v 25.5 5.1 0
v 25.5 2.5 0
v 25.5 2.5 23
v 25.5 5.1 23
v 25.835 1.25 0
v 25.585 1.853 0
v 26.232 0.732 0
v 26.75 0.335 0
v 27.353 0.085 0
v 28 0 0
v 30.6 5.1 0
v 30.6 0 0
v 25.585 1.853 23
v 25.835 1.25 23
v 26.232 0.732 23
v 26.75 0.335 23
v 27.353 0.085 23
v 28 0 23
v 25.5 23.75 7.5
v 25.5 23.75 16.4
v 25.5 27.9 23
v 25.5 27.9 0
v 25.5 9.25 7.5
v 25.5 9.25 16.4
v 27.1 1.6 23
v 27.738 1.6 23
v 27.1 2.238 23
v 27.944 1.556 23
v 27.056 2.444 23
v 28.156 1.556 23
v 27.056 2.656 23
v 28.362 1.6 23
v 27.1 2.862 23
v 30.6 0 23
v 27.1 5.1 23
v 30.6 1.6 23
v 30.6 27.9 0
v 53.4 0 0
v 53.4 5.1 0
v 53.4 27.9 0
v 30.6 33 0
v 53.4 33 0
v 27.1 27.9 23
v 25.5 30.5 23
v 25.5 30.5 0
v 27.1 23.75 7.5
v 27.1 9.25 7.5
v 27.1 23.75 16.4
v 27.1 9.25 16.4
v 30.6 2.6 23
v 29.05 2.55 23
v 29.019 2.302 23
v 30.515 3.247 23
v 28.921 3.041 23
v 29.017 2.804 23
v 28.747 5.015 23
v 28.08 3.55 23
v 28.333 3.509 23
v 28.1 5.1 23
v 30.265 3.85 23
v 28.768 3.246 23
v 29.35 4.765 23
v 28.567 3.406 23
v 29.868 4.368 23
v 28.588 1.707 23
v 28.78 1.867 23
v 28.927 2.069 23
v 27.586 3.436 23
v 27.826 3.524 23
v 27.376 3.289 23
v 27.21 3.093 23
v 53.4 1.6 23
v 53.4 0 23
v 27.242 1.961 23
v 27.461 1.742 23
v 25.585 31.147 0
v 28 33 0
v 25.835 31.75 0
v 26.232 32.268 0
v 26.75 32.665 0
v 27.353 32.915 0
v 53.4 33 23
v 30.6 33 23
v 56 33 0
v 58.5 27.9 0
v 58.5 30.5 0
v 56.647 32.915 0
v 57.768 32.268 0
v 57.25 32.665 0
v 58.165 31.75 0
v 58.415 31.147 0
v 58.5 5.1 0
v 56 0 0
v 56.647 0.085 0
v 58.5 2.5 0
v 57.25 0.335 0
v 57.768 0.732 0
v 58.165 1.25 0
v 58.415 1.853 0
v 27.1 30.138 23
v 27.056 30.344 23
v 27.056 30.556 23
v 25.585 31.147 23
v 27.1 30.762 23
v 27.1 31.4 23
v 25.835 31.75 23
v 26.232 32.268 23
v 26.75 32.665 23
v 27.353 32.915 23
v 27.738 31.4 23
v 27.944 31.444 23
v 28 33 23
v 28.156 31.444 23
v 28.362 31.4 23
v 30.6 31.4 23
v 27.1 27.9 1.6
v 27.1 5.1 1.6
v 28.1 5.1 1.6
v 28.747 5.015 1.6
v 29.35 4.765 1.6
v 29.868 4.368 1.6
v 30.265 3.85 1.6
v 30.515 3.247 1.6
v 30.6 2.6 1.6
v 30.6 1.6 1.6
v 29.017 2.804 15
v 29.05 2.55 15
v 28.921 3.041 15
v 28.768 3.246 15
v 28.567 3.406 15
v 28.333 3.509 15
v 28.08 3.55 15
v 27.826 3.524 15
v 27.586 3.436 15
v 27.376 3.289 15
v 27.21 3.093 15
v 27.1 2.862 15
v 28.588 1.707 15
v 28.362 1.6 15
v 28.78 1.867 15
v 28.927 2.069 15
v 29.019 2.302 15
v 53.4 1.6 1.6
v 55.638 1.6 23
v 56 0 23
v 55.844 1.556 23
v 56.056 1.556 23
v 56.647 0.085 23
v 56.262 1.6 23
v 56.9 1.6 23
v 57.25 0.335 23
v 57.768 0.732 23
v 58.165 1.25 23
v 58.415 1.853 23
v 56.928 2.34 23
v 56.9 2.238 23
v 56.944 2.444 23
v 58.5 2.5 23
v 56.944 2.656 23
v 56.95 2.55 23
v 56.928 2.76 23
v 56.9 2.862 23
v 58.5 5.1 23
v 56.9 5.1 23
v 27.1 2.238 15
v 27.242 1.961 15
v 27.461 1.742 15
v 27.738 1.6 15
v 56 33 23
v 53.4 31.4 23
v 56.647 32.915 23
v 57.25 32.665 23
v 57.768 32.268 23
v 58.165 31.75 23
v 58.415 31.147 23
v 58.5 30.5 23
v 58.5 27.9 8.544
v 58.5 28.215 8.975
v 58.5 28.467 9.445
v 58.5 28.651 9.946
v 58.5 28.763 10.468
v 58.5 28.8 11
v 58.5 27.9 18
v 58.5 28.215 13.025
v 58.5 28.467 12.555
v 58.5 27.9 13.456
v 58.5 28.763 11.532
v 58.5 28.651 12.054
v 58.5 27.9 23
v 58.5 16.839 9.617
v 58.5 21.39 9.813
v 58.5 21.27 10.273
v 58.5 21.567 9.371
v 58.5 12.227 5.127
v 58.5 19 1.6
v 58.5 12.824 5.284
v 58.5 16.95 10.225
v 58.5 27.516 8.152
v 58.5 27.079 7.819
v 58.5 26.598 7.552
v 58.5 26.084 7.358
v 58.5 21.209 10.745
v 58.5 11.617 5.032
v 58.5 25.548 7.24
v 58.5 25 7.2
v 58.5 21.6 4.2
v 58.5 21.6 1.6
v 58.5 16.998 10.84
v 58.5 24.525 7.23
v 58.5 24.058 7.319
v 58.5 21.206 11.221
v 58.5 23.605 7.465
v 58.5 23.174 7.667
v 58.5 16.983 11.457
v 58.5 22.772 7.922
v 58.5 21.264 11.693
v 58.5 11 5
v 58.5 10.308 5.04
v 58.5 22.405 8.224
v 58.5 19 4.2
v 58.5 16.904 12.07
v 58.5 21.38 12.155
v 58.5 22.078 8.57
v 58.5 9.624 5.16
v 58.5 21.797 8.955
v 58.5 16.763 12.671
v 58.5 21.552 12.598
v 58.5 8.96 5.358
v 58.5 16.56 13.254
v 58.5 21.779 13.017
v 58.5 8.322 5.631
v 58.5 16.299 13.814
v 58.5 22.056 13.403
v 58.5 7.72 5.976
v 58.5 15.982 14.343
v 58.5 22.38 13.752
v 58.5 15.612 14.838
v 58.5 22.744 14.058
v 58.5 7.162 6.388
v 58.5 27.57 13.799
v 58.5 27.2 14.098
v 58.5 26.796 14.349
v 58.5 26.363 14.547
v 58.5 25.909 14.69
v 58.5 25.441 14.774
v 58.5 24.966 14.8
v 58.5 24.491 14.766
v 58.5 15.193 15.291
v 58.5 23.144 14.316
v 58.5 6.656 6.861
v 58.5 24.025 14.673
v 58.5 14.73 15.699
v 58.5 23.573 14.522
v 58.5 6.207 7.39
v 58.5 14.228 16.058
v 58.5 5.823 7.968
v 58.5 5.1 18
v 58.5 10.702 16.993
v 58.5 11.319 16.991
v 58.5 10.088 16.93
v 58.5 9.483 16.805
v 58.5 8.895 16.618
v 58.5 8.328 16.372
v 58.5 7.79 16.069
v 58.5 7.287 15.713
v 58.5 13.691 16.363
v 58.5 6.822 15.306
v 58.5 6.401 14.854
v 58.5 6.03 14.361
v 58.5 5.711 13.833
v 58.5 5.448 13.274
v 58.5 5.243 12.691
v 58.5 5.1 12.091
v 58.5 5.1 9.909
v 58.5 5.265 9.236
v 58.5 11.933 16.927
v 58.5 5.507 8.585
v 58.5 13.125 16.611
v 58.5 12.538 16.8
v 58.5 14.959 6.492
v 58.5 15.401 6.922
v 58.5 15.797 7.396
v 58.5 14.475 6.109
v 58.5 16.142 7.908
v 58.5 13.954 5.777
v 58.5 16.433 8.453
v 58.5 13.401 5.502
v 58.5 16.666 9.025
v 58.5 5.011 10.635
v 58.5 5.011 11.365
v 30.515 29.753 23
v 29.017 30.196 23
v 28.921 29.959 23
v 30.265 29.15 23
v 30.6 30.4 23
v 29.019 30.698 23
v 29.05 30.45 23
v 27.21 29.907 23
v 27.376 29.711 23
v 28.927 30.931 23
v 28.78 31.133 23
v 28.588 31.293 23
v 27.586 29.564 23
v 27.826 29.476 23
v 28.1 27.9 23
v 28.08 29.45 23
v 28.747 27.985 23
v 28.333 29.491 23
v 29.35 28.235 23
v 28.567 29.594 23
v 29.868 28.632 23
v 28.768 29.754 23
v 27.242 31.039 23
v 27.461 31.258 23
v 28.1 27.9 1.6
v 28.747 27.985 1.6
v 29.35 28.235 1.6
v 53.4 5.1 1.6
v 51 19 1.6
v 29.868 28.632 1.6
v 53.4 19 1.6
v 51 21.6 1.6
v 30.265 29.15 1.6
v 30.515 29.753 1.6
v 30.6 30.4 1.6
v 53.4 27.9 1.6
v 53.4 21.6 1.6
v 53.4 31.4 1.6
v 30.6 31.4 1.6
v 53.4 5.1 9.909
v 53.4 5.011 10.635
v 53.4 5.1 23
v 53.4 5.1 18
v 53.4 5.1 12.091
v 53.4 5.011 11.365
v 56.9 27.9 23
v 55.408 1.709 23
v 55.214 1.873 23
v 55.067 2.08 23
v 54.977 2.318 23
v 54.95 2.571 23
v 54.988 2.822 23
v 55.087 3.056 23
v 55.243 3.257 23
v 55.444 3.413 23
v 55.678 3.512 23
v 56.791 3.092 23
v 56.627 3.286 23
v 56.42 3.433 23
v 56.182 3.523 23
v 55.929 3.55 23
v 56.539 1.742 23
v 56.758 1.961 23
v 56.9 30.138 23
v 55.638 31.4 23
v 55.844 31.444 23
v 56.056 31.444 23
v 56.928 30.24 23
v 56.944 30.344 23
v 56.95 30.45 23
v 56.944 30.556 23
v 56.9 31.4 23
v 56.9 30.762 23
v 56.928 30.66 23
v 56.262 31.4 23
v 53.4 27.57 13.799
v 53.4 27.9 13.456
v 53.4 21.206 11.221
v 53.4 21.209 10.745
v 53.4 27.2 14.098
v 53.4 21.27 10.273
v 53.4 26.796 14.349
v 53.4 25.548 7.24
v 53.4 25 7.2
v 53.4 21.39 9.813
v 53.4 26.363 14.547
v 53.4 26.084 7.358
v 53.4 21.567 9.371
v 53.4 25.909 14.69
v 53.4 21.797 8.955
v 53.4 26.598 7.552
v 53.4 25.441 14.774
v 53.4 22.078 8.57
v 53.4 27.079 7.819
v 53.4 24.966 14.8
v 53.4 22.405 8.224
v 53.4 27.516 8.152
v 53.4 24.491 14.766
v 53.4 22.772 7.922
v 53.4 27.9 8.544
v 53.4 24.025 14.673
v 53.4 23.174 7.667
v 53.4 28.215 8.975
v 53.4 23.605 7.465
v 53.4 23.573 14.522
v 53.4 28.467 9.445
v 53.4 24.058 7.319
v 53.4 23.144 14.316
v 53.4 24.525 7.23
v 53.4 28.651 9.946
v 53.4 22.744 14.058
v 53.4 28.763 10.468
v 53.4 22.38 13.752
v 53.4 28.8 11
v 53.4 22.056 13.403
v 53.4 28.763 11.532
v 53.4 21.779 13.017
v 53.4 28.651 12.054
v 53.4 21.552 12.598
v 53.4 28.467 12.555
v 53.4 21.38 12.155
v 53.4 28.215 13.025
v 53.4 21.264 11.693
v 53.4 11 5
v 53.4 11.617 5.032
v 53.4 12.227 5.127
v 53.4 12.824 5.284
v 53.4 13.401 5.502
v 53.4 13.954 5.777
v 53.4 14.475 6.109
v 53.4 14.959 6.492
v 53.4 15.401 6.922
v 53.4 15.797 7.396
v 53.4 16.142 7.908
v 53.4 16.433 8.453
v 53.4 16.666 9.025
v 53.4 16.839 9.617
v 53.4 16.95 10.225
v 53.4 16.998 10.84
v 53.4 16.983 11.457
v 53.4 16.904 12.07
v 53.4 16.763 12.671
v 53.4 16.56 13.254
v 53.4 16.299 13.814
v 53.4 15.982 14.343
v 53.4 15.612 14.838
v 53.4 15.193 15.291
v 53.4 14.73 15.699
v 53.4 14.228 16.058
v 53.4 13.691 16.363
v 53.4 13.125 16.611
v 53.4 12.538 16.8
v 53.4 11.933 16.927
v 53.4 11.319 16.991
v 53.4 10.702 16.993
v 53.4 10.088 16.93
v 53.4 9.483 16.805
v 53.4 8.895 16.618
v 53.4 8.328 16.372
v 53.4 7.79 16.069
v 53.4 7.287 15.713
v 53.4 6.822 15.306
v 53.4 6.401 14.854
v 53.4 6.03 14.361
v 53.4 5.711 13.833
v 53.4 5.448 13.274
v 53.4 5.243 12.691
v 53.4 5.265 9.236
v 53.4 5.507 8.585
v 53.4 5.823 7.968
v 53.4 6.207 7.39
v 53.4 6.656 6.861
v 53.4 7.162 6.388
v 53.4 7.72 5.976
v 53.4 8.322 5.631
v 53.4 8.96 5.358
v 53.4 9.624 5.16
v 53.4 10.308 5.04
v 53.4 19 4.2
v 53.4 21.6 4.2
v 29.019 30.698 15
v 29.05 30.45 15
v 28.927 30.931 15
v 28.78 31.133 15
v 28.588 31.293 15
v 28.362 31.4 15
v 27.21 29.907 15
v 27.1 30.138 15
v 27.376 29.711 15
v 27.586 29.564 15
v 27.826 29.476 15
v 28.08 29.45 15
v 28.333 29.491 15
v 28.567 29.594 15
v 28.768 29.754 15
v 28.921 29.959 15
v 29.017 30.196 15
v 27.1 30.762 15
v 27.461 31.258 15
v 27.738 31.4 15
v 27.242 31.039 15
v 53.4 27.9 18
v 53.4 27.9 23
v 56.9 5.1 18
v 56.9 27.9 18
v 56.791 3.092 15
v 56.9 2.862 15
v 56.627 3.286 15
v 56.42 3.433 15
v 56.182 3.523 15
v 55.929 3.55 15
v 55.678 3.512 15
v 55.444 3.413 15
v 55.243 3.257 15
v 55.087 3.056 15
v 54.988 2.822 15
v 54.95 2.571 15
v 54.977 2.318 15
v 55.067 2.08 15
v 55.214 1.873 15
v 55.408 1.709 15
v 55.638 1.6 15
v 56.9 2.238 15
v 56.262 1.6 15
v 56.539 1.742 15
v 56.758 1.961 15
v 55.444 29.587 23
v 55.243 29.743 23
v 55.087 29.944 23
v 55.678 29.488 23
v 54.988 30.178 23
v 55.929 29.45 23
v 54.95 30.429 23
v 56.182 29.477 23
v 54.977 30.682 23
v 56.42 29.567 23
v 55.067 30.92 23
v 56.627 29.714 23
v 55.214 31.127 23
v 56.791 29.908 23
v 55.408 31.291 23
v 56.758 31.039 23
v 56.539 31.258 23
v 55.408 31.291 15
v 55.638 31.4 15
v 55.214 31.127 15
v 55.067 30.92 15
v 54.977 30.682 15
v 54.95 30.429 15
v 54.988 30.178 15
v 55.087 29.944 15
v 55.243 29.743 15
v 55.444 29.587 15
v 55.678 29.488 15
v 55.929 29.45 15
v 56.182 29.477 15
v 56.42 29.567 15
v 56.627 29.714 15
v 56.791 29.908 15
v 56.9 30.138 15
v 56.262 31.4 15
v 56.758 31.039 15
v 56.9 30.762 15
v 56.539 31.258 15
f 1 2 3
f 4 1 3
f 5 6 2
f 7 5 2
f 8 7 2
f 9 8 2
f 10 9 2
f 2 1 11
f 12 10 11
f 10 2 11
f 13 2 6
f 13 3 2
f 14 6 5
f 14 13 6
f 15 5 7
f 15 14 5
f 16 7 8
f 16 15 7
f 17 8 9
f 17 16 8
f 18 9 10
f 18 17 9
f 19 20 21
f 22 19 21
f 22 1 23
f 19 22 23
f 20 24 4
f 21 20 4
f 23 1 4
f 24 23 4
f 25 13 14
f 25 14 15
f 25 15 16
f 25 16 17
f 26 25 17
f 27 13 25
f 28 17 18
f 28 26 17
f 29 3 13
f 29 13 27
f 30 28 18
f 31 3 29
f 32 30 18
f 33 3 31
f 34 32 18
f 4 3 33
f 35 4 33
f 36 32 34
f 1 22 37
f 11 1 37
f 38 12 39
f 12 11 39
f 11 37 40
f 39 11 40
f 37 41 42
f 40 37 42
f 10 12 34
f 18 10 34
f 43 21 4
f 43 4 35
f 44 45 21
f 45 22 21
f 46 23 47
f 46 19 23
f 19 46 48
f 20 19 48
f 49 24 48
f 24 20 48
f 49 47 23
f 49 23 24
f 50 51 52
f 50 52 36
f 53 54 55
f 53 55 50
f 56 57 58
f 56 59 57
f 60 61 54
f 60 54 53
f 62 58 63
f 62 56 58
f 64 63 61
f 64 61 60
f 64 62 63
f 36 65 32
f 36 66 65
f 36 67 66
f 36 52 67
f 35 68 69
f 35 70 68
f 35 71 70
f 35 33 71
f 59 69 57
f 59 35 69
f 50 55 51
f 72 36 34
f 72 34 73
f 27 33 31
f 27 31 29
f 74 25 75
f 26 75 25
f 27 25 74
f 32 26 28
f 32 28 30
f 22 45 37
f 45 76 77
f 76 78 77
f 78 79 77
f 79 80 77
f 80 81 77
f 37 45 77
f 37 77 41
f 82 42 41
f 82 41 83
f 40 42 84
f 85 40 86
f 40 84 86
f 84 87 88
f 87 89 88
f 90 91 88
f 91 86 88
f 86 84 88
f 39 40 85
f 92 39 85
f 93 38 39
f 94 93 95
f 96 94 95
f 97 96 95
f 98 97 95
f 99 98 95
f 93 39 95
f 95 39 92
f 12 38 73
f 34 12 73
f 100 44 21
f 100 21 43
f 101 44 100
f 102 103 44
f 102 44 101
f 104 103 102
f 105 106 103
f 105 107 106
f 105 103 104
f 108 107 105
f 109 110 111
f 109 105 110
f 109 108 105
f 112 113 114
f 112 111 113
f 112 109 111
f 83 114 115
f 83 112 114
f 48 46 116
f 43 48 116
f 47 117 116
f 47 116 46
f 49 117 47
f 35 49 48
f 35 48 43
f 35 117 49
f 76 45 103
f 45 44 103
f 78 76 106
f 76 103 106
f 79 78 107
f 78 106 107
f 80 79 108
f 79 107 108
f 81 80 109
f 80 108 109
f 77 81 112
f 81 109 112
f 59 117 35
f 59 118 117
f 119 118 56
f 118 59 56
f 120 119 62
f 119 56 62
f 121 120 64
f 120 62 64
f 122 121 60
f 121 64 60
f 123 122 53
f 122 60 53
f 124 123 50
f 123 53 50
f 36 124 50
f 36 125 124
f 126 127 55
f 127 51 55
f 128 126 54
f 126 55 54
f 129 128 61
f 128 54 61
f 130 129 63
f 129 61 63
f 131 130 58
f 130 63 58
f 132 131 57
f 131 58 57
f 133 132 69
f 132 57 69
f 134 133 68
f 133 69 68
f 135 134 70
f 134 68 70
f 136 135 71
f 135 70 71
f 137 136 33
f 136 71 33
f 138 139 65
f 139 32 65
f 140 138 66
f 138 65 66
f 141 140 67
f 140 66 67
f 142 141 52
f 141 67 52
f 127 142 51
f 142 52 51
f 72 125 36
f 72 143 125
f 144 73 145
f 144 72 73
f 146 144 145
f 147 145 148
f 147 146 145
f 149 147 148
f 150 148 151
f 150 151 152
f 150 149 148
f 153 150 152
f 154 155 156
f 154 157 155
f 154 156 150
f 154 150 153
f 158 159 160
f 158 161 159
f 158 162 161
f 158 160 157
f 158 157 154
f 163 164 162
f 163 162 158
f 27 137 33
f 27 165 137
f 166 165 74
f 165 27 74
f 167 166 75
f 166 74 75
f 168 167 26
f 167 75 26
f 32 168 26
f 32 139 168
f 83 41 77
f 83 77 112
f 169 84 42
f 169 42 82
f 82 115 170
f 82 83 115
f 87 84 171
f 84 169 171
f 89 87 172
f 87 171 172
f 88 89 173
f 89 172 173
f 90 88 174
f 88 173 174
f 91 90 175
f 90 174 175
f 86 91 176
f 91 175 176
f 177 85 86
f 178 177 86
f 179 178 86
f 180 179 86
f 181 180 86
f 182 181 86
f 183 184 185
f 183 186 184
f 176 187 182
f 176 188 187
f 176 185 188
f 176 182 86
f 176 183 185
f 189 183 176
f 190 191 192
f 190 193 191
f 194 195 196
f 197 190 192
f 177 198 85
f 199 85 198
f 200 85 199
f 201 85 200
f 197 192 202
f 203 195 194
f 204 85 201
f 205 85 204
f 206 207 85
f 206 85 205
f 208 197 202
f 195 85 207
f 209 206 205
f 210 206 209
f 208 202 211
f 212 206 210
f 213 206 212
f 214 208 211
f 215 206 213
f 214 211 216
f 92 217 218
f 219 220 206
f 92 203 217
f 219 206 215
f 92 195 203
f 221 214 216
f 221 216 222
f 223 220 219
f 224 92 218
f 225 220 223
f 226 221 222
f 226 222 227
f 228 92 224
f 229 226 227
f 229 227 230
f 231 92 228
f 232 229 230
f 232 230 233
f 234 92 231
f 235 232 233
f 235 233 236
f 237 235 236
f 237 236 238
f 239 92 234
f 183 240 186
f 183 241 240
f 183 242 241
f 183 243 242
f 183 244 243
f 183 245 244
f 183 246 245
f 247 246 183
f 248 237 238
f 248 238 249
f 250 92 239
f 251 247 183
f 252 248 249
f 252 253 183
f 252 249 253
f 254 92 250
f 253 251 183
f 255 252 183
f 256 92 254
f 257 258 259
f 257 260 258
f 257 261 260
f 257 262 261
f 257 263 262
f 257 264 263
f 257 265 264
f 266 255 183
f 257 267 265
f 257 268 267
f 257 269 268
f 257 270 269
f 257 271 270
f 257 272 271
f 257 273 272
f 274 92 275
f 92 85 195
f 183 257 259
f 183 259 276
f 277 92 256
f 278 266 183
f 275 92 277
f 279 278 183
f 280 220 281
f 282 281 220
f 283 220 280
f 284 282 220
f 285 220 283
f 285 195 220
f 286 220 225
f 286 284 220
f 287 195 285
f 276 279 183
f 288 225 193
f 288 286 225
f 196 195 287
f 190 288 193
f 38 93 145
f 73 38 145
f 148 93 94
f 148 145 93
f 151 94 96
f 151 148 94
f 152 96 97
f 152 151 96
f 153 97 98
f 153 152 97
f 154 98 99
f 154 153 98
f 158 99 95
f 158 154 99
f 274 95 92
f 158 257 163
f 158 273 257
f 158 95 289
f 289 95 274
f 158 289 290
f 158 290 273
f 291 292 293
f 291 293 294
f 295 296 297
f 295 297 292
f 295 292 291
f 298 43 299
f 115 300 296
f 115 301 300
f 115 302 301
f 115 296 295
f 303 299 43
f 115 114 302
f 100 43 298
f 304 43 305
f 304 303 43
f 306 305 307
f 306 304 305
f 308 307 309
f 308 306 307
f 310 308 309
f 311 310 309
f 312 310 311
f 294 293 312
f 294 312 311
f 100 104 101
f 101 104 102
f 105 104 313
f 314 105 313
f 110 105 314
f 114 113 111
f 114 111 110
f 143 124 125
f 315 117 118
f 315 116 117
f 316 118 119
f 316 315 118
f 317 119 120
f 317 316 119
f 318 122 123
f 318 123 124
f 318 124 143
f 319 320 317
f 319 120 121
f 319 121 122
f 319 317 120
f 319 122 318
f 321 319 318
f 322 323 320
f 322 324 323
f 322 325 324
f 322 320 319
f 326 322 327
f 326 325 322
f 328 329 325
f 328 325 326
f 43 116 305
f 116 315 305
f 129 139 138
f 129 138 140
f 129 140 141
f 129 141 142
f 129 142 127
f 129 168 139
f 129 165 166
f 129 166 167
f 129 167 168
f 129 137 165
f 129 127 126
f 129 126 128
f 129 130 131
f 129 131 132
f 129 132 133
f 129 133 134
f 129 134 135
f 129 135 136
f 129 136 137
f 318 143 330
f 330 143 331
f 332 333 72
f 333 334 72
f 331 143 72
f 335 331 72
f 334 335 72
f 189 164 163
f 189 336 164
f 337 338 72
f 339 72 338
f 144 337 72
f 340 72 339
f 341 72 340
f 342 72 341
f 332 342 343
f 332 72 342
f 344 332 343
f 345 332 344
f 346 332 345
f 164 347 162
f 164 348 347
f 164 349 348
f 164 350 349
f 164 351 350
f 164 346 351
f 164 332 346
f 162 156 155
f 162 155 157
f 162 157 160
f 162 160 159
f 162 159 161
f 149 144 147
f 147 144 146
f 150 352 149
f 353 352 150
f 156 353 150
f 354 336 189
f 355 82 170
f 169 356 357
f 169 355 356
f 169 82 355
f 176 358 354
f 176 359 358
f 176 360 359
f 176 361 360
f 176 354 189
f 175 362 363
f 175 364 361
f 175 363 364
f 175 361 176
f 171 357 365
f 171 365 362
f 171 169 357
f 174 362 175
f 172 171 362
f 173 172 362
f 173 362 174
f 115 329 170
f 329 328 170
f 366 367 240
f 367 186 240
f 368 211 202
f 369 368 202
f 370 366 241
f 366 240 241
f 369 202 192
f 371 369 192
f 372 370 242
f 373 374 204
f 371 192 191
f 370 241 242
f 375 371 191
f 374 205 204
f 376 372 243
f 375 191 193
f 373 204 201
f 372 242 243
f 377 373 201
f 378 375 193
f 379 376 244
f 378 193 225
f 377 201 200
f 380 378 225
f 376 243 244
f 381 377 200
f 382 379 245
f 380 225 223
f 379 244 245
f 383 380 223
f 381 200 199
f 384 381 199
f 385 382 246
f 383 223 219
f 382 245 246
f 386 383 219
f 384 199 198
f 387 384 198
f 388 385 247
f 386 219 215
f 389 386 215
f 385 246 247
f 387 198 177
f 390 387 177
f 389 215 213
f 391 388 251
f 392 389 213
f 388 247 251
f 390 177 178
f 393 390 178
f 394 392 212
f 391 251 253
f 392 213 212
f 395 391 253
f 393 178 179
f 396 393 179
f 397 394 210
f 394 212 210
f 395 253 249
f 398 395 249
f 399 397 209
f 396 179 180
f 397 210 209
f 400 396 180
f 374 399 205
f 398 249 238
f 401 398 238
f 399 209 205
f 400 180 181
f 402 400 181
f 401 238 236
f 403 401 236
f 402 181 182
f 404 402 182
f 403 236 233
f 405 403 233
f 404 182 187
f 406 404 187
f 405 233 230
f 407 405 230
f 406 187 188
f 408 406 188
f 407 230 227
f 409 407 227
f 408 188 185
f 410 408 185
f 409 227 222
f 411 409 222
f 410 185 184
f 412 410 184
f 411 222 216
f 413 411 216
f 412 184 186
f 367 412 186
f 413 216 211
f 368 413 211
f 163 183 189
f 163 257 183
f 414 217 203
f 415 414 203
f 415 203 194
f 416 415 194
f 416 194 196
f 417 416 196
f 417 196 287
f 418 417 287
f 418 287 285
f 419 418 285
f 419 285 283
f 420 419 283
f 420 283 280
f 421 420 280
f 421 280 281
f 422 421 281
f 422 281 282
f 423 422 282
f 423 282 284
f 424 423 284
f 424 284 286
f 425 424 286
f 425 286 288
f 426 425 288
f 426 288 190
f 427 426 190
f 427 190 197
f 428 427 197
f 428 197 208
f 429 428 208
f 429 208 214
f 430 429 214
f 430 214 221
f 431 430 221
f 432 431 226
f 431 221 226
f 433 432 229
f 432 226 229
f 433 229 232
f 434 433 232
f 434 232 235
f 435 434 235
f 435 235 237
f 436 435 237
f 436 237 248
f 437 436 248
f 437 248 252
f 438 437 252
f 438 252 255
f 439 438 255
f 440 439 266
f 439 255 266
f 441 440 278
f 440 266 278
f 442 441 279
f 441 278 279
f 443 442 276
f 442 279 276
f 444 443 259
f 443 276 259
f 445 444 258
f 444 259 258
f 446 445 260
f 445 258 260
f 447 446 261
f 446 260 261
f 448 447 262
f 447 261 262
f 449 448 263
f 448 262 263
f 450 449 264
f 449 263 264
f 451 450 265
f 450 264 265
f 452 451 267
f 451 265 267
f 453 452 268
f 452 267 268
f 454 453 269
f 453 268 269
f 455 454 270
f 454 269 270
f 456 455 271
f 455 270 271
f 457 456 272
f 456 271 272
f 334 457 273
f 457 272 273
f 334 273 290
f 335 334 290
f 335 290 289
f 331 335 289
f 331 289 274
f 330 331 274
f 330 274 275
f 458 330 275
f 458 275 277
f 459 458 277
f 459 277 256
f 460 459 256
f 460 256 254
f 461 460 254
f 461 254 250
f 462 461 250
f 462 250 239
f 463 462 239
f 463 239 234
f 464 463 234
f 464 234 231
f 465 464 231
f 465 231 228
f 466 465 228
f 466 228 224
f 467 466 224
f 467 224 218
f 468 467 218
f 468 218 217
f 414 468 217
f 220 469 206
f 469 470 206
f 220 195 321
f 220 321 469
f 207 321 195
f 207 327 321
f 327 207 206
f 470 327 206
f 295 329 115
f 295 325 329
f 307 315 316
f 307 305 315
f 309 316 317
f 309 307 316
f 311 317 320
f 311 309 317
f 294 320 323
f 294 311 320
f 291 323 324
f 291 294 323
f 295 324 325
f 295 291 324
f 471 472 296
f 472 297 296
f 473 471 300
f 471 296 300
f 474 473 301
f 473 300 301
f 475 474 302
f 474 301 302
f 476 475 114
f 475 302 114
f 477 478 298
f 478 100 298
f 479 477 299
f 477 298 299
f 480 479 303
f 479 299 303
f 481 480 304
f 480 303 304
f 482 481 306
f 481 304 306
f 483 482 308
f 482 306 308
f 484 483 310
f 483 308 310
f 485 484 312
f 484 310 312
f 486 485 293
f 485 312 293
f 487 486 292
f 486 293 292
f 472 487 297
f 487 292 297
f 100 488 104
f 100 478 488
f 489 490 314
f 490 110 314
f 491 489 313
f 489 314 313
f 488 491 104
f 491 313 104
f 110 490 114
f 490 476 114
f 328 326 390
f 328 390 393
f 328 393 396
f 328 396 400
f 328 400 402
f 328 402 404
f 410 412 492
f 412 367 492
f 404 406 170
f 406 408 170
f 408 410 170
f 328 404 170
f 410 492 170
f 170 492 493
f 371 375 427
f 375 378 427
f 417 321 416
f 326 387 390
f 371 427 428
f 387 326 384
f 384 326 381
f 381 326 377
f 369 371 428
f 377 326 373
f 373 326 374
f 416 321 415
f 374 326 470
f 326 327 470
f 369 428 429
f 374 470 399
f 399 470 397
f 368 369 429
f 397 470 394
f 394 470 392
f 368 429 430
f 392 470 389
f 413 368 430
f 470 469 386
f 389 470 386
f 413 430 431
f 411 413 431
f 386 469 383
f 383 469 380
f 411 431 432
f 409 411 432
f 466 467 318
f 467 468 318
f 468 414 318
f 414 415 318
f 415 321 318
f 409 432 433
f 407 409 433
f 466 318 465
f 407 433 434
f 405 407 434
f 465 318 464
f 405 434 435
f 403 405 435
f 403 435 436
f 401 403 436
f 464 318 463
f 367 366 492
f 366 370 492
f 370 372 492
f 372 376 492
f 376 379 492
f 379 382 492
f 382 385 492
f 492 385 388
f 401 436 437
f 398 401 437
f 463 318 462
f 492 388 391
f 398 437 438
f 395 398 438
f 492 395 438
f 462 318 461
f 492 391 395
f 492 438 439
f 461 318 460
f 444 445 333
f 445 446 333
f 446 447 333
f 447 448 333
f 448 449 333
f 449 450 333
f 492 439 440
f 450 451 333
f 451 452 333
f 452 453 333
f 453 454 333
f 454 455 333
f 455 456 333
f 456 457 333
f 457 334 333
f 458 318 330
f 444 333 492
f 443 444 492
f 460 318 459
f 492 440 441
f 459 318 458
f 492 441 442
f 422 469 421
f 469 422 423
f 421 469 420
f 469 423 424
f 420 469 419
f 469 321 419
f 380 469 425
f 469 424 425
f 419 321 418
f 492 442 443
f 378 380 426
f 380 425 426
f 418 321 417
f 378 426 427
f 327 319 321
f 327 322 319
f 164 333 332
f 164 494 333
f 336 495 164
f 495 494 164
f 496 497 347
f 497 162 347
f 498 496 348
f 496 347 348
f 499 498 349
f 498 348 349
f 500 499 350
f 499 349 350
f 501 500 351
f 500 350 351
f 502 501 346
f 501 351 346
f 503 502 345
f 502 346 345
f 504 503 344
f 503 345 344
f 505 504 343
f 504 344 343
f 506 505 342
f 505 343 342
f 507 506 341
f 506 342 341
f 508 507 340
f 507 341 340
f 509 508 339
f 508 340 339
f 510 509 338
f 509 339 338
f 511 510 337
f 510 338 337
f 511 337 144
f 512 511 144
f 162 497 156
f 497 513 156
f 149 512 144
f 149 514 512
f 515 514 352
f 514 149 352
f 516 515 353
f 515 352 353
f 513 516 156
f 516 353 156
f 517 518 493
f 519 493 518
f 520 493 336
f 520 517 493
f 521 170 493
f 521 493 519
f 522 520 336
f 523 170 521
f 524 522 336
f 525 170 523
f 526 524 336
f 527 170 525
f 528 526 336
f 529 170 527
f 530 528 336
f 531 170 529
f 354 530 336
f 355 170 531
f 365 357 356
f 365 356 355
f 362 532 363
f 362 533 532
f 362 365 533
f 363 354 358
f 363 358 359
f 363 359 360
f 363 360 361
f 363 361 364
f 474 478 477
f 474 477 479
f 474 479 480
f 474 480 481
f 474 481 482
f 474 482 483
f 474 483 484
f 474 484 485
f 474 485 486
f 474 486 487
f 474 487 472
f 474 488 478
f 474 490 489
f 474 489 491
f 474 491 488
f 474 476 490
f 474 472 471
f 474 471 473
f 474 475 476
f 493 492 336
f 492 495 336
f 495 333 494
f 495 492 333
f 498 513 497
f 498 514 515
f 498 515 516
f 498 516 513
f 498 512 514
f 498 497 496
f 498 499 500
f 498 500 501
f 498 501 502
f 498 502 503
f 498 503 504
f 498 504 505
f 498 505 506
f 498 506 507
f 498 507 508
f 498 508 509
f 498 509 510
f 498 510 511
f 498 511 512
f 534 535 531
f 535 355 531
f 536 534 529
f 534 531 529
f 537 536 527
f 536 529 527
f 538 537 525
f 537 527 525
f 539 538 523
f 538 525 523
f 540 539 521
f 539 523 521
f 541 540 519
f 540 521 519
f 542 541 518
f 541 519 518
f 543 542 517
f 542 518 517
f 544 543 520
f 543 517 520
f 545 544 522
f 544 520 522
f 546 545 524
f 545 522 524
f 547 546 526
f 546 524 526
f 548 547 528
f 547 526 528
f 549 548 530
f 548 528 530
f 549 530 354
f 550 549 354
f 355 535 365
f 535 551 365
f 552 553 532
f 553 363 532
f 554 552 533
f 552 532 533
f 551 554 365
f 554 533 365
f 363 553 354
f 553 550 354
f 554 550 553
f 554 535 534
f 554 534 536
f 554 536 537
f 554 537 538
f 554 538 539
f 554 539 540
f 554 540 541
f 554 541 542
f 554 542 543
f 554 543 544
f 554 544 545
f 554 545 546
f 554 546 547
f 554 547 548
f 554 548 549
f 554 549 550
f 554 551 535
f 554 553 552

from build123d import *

# Parameters (mm, degrees)
BOX008_W                = 10
BOX008_H                = 2.6
BOX008_DEPTH            = 2.6
CYLINDER004_R           = 6
CYLINDER004_DEPTH       = 10
CYLINDER004_PITCH_ANGLE = 90
CYLINDER005_R           = 3.8
CYLINDER005_DEPTH       = 10
CYLINDER005_PITCH_ANGLE = 90
BOX006_W                = 10
BOX006_H                = 14.5
BOX006_DEPTH            = 8.9
BOX007_W                = 5.1
BOX007_H                = 22.8
BOX007_DEPTH            = 18
CYLINDER001_R           = 1
CYLINDER001_DEPTH       = 8
BOX003_W                = 5.1
BOX003_H                = 5.1
BOX003_DEPTH            = 23
CYLINDER003_R           = 1
CYLINDER003_DEPTH       = 8
BOX005_W                = 5.1
BOX005_H                = 5.1
BOX005_DEPTH            = 23
CYLINDER002_R           = 1
CYLINDER002_DEPTH       = 8
BOX004_W                = 5.1
BOX004_H                = 5.1
BOX004_DEPTH            = 23
CYLINDER_R              = 1
CYLINDER_DEPTH          = 8
BOX002_W                = 5.1
BOX002_H                = 5.1
BOX002_DEPTH            = 23
BOX001_W                = 29.8
BOX001_H                = 29.8
BOX001_DEPTH            = 23
BOX_W                   = 33
BOX_H                   = 33
BOX_DEPTH               = 23
FILLET_R                = 2.5


with BuildPart() as dupont:
    # Box008 → Box008 (new body)
    with BuildSketch(Plane(origin=(51, 19, 1.6), x_dir=(1, 0, 0), z_dir=(0, 0, 1))):
        with Locations((5, 1.3)):
            Rectangle(BOX008_W, BOX008_H)
    extrude(amount=BOX008_DEPTH)


with BuildPart() as aviator:
    # Cylinder004 → Cylinder004 (new body)
    with BuildSketch(Plane.XY):
        Circle(CYLINDER004_R)
    extrude(amount=CYLINDER004_DEPTH)


with BuildPart() as aviator_1:
    # Cylinder004 pitch: moved
    add(aviator.part.rotate(Axis((0, 0, 0), (0, 1, 0)), CYLINDER004_PITCH_ANGLE))


with BuildPart() as aviator_2:
    # Cylinder004 placement: moved
    add(aviator_1.part.moved(Location((50, 11, 11))))


with BuildPart() as dcplug:
    # Cylinder005 → Cylinder005 (new body)
    with BuildSketch(Plane.XY):
        Circle(CYLINDER005_R)
    extrude(amount=CYLINDER005_DEPTH)


with BuildPart() as dcplug_1:
    # Cylinder005 pitch: moved
    add(dcplug.part.rotate(Axis((0, 0, 0), (0, 1, 0)), CYLINDER005_PITCH_ANGLE))


with BuildPart() as dcplug_2:
    # Cylinder005 placement: moved
    add(dcplug_1.part.moved(Location((50, 25, 11))))


with BuildPart() as aussparungen:
    # Box006 → Box006 (new body)
    with BuildSketch(Plane(origin=(22.5, 9.25, 7.5), x_dir=(1, 0, 0), z_dir=(0, 0, 1))):
        with Locations((5, 7.25)):
            Rectangle(BOX006_W, BOX006_H)
    extrude(amount=BOX006_DEPTH)

    # Fusion003: union Aviator, DCPlug
    add(aviator_2.part)
    add(dcplug_2.part)


with BuildPart() as lochverstaerkung:
    # Box007 → Box007 (new body)
    with BuildSketch(Plane(origin=(53.4, 5.1, 0), x_dir=(1, 0, 0), z_dir=(0, 0, 1))):
        with Locations((2.55, 11.4)):
            Rectangle(BOX007_W, BOX007_H)
    extrude(amount=BOX007_DEPTH)


with BuildPart() as schraubloch001:
    # Cylinder001 → Cylinder001 (new body)
    with BuildSketch(Plane(origin=(2.55, 2.55, 15), x_dir=(1, 0, 0), z_dir=(0, 0, 1))):
        Circle(CYLINDER001_R)
    extrude(amount=CYLINDER001_DEPTH)


with BuildPart() as platinenhalter001:
    # Box003 → Box003 (new body)
    with BuildSketch(Plane.XY):
        with Locations((2.55, 2.55)):
            Rectangle(BOX003_W, BOX003_H)
    extrude(amount=BOX003_DEPTH)

    # Cut002: cut Schraubloch001
    add(schraubloch001.part, mode=Mode.SUBTRACT)


with BuildPart() as platinenhalter001_1:
    # Cut002 placement: moved
    add(platinenhalter001.part.moved(Location((53.4, 0, 0))))


with BuildPart() as schraubloch003:
    # Cylinder003 → Cylinder003 (new body)
    with BuildSketch(Plane(origin=(2.55, 2.55, 15), x_dir=(1, 0, 0), z_dir=(0, 0, 1))):
        Circle(CYLINDER003_R)
    extrude(amount=CYLINDER003_DEPTH)


with BuildPart() as platinenhalter003:
    # Box005 → Box005 (new body)
    with BuildSketch(Plane.XY):
        with Locations((2.55, 2.55)):
            Rectangle(BOX005_W, BOX005_H)
    extrude(amount=BOX005_DEPTH)

    # Cut004: cut Schraubloch003
    add(schraubloch003.part, mode=Mode.SUBTRACT)


with BuildPart() as platinenhalter003_1:
    # Cut004 placement: moved
    add(platinenhalter003.part.moved(Location((53.4, 27.9, 0))))


with BuildPart() as schraubloch002:
    # Cylinder002 → Cylinder002 (new body)
    with BuildSketch(Plane(origin=(2.55, 2.55, 15), x_dir=(1, 0, 0), z_dir=(0, 0, 1))):
        Circle(CYLINDER002_R)
    extrude(amount=CYLINDER002_DEPTH)


with BuildPart() as platinenhalter002:
    # Box004 → Box004 (new body)
    with BuildSketch(Plane.XY):
        with Locations((2.55, 2.55)):
            Rectangle(BOX004_W, BOX004_H)
    extrude(amount=BOX004_DEPTH)

    # Cut003: cut Schraubloch002
    add(schraubloch002.part, mode=Mode.SUBTRACT)


with BuildPart() as platinenhalter002_1:
    # Cut003 placement: moved
    add(platinenhalter002.part.moved(Location((25.5, 27.9, 0))))


with BuildPart() as schraubloch:
    # Cylinder → Cylinder (new body)
    with BuildSketch(Plane(origin=(2.55, 2.55, 15), x_dir=(1, 0, 0), z_dir=(0, 0, 1))):
        Circle(CYLINDER_R)
    extrude(amount=CYLINDER_DEPTH)


with BuildPart() as platinenhalter:
    # Box002 → Box002 (new body)
    with BuildSketch(Plane.XY):
        with Locations((2.55, 2.55)):
            Rectangle(BOX002_W, BOX002_H)
    extrude(amount=BOX002_DEPTH)

    # Cut001: cut Schraubloch
    add(schraubloch.part, mode=Mode.SUBTRACT)


with BuildPart() as platinenhalter_1:
    # Cut001 placement: moved
    add(platinenhalter.part.moved(Location((25.5, 0, 0))))

    # Fusion: union Platinenhalter001, Platinenhalter003, Platinenhalter002
    add(platinenhalter001_1.part)
    add(platinenhalter003_1.part)
    add(platinenhalter002_1.part)


with BuildPart() as innen:
    # Box001 → Box001 (new body)
    with BuildSketch(Plane(origin=(1.6, 1.6, 1.6), x_dir=(1, 0, 0), z_dir=(0, 0, 1))):
        with Locations((14.9, 14.9)):
            Rectangle(BOX001_W, BOX001_H)
    extrude(amount=BOX001_DEPTH)


with BuildPart() as cut006:
    # Box → Box (new body)
    with BuildSketch(Plane.XY):
        with Locations((16.5, 16.5)):
            Rectangle(BOX_W, BOX_H)
    extrude(amount=BOX_DEPTH)

    # Cut: cut Innen
    add(innen.part, mode=Mode.SUBTRACT)


with BuildPart() as cut006_1:
    # Cut placement: moved
    add(cut006.part.moved(Location((25.5, 0, 0))))

    # Fusion001: union Platinenhalter
    add(platinenhalter_1.part)

    # Fusion002: union Lochverstaerkung
    add(lochverstaerkung.part)

    # Fillet
    fillet_edges = [cut006_1.edges().sort_by_distance(p)[0] for p in [
        (25.5, 0, 11.5),
        (25.5, 33, 11.5),
        (58.5, 0, 11.5),
        (30.6, 5.1, 12.3),
        (58.5, 33, 11.5),
        (30.6, 27.9, 12.3),
    ]]
    fillet(fillet_edges, radius=FILLET_R)

    # Cut005: cut Aussparungen
    add(aussparungen.part, mode=Mode.SUBTRACT)

    # Cut006: cut Dupont
    add(dupont.part, mode=Mode.SUBTRACT)


solid = cut006_1.part
